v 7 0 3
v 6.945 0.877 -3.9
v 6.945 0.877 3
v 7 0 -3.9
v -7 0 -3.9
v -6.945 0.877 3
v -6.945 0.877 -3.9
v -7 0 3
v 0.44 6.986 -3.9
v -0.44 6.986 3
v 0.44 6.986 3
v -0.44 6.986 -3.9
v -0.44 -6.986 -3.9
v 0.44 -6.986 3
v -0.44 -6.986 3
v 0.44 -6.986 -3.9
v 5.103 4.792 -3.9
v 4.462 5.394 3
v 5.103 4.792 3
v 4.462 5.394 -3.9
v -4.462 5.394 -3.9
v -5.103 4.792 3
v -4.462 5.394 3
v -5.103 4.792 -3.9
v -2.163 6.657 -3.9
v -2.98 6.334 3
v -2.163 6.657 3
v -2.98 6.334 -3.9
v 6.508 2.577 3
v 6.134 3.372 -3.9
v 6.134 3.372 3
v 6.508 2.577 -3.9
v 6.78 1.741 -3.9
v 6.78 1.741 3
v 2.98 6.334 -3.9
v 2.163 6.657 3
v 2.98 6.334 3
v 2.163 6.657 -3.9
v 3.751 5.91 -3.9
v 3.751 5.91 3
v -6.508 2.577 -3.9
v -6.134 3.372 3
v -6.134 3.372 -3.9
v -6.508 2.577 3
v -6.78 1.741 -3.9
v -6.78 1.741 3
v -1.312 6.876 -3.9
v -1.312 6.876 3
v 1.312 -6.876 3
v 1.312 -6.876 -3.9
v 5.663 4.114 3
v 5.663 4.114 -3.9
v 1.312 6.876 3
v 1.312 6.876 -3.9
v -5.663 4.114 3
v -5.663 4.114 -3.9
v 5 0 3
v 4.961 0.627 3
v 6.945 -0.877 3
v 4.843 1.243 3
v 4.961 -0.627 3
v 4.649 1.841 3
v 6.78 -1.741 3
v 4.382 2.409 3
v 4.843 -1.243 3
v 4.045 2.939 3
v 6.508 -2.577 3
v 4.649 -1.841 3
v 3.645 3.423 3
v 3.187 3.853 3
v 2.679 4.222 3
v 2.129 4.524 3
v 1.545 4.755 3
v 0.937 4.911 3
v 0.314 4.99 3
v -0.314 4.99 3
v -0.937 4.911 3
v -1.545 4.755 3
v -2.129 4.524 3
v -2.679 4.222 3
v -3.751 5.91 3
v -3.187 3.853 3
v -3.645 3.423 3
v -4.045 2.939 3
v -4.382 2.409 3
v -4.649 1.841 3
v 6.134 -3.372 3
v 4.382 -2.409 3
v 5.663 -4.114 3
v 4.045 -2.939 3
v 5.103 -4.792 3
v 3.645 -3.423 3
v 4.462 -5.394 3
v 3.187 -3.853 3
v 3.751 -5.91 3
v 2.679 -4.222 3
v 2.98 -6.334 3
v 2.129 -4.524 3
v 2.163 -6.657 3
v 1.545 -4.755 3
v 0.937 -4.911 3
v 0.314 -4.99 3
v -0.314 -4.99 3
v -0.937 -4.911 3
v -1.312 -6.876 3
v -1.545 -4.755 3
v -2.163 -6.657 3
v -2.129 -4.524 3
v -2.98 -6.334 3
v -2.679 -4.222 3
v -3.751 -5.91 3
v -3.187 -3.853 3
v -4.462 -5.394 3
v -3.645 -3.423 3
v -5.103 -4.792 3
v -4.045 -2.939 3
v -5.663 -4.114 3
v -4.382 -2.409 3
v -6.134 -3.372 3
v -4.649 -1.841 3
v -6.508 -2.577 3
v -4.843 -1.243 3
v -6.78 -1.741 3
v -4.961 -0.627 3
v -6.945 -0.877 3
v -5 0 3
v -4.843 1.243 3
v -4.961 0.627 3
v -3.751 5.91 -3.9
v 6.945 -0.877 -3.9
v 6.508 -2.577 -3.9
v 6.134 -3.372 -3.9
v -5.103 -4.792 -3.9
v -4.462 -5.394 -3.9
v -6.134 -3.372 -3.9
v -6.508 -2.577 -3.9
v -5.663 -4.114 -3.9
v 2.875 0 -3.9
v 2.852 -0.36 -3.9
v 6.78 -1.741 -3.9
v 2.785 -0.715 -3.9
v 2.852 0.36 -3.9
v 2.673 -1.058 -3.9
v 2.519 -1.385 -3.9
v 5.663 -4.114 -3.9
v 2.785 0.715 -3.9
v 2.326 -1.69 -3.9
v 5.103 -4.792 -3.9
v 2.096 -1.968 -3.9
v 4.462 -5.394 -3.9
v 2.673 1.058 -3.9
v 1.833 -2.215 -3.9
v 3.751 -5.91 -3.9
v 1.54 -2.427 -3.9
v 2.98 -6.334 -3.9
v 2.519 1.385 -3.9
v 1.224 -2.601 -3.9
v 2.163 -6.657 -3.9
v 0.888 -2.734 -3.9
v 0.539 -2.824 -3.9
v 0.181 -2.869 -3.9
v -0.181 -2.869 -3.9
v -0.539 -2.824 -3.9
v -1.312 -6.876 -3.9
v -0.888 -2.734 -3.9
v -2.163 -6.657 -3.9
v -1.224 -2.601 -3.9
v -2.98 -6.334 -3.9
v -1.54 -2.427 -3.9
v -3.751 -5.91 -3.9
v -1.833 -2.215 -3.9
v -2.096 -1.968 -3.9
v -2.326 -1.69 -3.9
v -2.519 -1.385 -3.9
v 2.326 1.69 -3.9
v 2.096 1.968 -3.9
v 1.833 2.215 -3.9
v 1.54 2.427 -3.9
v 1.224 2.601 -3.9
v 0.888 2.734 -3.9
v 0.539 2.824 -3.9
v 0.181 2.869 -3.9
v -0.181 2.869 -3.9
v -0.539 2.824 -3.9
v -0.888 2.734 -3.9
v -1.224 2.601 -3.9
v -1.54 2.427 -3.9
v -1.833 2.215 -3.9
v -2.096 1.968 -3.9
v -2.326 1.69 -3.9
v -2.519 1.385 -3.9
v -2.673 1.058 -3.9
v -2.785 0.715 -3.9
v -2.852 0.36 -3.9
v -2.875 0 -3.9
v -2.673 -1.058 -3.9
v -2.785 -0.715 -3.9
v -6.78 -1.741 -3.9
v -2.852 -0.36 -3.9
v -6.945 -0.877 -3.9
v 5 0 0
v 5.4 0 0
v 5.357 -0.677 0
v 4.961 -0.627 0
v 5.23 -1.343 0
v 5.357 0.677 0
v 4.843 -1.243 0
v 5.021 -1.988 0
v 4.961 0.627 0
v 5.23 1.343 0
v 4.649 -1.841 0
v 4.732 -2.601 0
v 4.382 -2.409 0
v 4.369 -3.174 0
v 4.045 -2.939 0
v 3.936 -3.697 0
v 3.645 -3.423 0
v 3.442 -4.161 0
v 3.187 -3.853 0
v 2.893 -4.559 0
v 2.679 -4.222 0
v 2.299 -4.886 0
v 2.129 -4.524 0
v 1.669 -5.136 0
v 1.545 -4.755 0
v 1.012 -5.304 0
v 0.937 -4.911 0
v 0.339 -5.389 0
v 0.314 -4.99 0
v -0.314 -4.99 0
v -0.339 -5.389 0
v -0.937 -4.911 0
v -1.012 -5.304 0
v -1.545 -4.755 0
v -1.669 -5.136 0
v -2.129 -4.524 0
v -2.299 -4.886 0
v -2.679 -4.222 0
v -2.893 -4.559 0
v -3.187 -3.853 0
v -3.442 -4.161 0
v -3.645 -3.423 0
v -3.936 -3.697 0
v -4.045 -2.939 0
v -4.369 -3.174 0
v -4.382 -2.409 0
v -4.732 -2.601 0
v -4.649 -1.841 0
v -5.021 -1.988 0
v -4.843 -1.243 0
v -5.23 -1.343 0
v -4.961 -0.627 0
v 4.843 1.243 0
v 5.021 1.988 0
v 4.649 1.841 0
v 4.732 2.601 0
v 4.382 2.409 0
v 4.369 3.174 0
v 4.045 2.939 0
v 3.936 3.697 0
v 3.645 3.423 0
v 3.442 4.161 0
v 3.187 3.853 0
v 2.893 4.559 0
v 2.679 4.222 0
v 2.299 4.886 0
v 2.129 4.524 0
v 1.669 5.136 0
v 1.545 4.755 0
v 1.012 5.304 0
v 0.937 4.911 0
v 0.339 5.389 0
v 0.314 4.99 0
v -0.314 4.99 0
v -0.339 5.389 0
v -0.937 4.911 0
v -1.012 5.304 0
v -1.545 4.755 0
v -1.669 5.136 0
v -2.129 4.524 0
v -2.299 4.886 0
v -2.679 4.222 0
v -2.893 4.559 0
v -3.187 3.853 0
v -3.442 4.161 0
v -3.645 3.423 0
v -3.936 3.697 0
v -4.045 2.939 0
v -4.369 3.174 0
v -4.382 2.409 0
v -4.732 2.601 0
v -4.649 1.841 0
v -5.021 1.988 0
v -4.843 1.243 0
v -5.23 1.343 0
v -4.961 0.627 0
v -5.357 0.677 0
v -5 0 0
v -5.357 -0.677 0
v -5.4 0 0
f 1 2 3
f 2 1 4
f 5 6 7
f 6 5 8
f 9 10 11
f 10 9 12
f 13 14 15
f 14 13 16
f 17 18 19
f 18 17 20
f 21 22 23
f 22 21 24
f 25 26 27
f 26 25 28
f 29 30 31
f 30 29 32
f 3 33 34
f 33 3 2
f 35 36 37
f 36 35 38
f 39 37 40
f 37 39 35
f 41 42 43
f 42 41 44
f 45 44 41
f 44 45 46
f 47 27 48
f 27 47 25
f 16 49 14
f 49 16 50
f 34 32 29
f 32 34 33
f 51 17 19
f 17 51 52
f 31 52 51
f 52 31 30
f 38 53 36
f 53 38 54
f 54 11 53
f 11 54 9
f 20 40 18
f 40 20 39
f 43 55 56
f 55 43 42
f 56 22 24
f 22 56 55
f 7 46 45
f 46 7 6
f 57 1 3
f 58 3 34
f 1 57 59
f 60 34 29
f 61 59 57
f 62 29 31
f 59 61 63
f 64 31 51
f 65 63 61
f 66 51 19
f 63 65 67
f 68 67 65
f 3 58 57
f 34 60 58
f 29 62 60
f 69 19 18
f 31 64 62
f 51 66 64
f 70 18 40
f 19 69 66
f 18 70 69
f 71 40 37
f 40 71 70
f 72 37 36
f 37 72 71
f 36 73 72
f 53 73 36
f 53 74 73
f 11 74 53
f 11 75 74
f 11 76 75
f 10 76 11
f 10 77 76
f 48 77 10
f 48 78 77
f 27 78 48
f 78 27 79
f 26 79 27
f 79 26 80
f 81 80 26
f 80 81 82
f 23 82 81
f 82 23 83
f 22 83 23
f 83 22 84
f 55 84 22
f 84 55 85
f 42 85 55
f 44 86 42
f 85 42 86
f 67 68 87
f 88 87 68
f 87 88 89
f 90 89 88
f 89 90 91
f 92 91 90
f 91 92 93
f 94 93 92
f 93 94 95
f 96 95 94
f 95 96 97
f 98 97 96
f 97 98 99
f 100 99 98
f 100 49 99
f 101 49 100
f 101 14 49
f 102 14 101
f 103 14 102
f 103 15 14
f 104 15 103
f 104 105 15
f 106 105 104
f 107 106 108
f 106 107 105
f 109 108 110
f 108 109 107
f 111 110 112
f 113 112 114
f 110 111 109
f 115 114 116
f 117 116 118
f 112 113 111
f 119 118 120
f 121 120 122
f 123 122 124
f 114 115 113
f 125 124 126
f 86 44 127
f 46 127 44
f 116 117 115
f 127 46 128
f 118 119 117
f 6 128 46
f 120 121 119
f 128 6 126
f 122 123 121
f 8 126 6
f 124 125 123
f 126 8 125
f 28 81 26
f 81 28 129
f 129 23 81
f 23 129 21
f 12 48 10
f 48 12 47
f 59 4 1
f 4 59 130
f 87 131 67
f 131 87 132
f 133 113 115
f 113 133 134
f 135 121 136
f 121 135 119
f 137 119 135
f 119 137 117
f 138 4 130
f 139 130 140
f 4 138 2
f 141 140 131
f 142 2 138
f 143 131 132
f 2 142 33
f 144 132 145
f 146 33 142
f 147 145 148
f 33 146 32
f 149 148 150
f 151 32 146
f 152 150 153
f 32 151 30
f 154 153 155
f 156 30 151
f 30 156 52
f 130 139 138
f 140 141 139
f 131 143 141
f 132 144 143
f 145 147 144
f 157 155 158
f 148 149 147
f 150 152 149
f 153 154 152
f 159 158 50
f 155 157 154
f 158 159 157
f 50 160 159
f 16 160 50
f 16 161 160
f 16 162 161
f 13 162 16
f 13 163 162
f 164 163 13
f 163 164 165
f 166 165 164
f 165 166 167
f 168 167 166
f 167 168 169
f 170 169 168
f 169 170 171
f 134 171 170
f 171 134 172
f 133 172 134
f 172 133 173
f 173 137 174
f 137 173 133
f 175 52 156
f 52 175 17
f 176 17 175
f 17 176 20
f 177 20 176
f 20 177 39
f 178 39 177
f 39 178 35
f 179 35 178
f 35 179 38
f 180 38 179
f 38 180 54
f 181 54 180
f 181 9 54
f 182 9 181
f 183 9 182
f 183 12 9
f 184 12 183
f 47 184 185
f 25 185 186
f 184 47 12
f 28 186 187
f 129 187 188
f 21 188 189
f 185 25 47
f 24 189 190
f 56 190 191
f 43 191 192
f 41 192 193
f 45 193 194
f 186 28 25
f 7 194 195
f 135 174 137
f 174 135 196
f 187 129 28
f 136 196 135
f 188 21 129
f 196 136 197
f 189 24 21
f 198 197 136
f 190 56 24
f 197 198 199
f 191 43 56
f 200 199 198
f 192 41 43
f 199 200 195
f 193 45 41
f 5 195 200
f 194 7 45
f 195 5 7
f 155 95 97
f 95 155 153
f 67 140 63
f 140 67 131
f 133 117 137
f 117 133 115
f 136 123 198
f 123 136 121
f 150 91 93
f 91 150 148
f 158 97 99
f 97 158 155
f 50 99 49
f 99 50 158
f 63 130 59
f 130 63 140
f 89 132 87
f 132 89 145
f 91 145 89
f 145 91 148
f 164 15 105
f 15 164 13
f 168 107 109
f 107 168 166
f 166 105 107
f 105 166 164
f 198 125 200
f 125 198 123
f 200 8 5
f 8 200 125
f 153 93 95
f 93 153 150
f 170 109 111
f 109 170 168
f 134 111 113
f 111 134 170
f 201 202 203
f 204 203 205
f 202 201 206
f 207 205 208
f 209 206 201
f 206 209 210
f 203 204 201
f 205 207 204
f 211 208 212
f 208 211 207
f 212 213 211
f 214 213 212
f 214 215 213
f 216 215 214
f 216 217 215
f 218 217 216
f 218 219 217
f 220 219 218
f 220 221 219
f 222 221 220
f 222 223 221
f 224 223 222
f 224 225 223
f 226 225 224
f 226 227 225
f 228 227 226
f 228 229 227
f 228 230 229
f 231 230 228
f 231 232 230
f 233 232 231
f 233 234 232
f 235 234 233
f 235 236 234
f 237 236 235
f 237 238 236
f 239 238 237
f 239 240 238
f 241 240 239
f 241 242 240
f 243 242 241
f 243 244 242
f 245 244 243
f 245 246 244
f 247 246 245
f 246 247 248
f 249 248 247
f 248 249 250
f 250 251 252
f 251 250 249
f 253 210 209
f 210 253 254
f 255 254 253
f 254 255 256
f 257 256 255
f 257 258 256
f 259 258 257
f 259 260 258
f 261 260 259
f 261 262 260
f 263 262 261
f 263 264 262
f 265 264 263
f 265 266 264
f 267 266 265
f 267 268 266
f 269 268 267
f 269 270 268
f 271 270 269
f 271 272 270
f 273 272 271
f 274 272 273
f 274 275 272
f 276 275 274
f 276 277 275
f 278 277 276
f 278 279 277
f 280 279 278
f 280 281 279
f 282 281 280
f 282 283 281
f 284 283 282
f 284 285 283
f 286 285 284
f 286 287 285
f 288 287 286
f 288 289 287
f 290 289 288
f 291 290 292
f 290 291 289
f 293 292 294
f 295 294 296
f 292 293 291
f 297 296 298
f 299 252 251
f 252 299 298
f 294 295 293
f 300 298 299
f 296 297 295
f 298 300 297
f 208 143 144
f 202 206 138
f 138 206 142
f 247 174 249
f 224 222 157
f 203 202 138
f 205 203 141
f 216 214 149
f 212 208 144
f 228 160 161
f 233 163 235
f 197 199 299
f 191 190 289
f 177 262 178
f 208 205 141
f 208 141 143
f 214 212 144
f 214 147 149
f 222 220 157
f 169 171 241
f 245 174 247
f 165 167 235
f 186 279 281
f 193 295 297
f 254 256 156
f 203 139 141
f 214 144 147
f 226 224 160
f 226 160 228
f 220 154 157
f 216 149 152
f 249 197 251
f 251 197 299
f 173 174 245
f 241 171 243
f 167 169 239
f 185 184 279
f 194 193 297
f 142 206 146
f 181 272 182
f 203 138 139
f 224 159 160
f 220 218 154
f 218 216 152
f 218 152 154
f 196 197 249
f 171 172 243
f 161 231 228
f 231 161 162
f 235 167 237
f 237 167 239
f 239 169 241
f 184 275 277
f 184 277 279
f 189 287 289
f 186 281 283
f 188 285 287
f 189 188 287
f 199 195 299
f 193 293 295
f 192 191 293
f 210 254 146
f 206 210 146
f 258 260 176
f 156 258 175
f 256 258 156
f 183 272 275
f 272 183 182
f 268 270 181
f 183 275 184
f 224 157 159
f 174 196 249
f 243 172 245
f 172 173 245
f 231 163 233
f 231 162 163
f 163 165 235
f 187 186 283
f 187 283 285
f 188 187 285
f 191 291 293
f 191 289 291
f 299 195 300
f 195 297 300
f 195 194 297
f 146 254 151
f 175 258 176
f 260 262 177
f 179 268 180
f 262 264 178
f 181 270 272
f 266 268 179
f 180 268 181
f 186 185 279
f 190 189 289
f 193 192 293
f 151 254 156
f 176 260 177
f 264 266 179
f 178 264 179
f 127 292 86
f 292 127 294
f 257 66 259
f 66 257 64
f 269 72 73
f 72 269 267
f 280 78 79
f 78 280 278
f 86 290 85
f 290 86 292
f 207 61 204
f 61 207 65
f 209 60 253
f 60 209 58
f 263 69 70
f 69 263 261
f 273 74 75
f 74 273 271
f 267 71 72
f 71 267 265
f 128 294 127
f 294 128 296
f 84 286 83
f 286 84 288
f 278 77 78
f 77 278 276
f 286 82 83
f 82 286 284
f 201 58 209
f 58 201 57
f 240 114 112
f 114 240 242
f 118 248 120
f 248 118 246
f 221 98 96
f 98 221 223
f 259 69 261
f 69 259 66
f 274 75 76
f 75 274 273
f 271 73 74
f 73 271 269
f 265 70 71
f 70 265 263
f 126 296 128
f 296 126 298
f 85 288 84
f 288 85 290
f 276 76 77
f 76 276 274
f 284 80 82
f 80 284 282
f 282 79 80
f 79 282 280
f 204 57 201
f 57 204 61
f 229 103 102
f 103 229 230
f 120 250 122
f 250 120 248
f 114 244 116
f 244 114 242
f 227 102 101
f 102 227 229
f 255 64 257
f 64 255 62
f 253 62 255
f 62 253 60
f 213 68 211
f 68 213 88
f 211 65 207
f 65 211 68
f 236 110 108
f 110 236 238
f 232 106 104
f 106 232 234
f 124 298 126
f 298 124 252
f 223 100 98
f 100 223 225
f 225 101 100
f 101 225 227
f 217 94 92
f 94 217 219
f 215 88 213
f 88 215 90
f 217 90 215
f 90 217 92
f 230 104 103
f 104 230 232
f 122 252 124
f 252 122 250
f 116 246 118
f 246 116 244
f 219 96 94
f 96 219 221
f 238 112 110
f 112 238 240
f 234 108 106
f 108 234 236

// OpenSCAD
$fn = 50;


difference() {
	union() {
		translate(v = [0, 0, -3.9000000000]) {
			cylinder(h = 6.9000000000, r = 7.0000000000);
		}
		#translate(v = [0, 0, -6.9000000000]) {
			cylinder(h = 6.9000000000, r = 2.8750000000);
		}
	}
	union() {
		translate(v = [0, 0, 0]) {
			rotate(a = [0, 0, 0]) {
				difference() {
					union() {
						translate(v = [0, 0, -6.9000000000]) {
							cylinder(h = 6.9000000000, r = 2.6000000000);
						}
						translate(v = [0, 0, -3.9000000000]) {
							cylinder(h = 3.9000000000, r1 = 2.8750000000, r2 = 5.4000000000);
						}
						translate(v = [0, 0, -6.9000000000]) {
							cylinder(h = 6.9000000000, r = 2.8750000000);
						}
						translate(v = [0, 0, -6.9000000000]) {
							cylinder(h = 6.9000000000, r = 2.6000000000);
						}
					}
					union();
				}
			}
		}
		#cylinder(h = 3, r = 5.0000000000);
	}
}
